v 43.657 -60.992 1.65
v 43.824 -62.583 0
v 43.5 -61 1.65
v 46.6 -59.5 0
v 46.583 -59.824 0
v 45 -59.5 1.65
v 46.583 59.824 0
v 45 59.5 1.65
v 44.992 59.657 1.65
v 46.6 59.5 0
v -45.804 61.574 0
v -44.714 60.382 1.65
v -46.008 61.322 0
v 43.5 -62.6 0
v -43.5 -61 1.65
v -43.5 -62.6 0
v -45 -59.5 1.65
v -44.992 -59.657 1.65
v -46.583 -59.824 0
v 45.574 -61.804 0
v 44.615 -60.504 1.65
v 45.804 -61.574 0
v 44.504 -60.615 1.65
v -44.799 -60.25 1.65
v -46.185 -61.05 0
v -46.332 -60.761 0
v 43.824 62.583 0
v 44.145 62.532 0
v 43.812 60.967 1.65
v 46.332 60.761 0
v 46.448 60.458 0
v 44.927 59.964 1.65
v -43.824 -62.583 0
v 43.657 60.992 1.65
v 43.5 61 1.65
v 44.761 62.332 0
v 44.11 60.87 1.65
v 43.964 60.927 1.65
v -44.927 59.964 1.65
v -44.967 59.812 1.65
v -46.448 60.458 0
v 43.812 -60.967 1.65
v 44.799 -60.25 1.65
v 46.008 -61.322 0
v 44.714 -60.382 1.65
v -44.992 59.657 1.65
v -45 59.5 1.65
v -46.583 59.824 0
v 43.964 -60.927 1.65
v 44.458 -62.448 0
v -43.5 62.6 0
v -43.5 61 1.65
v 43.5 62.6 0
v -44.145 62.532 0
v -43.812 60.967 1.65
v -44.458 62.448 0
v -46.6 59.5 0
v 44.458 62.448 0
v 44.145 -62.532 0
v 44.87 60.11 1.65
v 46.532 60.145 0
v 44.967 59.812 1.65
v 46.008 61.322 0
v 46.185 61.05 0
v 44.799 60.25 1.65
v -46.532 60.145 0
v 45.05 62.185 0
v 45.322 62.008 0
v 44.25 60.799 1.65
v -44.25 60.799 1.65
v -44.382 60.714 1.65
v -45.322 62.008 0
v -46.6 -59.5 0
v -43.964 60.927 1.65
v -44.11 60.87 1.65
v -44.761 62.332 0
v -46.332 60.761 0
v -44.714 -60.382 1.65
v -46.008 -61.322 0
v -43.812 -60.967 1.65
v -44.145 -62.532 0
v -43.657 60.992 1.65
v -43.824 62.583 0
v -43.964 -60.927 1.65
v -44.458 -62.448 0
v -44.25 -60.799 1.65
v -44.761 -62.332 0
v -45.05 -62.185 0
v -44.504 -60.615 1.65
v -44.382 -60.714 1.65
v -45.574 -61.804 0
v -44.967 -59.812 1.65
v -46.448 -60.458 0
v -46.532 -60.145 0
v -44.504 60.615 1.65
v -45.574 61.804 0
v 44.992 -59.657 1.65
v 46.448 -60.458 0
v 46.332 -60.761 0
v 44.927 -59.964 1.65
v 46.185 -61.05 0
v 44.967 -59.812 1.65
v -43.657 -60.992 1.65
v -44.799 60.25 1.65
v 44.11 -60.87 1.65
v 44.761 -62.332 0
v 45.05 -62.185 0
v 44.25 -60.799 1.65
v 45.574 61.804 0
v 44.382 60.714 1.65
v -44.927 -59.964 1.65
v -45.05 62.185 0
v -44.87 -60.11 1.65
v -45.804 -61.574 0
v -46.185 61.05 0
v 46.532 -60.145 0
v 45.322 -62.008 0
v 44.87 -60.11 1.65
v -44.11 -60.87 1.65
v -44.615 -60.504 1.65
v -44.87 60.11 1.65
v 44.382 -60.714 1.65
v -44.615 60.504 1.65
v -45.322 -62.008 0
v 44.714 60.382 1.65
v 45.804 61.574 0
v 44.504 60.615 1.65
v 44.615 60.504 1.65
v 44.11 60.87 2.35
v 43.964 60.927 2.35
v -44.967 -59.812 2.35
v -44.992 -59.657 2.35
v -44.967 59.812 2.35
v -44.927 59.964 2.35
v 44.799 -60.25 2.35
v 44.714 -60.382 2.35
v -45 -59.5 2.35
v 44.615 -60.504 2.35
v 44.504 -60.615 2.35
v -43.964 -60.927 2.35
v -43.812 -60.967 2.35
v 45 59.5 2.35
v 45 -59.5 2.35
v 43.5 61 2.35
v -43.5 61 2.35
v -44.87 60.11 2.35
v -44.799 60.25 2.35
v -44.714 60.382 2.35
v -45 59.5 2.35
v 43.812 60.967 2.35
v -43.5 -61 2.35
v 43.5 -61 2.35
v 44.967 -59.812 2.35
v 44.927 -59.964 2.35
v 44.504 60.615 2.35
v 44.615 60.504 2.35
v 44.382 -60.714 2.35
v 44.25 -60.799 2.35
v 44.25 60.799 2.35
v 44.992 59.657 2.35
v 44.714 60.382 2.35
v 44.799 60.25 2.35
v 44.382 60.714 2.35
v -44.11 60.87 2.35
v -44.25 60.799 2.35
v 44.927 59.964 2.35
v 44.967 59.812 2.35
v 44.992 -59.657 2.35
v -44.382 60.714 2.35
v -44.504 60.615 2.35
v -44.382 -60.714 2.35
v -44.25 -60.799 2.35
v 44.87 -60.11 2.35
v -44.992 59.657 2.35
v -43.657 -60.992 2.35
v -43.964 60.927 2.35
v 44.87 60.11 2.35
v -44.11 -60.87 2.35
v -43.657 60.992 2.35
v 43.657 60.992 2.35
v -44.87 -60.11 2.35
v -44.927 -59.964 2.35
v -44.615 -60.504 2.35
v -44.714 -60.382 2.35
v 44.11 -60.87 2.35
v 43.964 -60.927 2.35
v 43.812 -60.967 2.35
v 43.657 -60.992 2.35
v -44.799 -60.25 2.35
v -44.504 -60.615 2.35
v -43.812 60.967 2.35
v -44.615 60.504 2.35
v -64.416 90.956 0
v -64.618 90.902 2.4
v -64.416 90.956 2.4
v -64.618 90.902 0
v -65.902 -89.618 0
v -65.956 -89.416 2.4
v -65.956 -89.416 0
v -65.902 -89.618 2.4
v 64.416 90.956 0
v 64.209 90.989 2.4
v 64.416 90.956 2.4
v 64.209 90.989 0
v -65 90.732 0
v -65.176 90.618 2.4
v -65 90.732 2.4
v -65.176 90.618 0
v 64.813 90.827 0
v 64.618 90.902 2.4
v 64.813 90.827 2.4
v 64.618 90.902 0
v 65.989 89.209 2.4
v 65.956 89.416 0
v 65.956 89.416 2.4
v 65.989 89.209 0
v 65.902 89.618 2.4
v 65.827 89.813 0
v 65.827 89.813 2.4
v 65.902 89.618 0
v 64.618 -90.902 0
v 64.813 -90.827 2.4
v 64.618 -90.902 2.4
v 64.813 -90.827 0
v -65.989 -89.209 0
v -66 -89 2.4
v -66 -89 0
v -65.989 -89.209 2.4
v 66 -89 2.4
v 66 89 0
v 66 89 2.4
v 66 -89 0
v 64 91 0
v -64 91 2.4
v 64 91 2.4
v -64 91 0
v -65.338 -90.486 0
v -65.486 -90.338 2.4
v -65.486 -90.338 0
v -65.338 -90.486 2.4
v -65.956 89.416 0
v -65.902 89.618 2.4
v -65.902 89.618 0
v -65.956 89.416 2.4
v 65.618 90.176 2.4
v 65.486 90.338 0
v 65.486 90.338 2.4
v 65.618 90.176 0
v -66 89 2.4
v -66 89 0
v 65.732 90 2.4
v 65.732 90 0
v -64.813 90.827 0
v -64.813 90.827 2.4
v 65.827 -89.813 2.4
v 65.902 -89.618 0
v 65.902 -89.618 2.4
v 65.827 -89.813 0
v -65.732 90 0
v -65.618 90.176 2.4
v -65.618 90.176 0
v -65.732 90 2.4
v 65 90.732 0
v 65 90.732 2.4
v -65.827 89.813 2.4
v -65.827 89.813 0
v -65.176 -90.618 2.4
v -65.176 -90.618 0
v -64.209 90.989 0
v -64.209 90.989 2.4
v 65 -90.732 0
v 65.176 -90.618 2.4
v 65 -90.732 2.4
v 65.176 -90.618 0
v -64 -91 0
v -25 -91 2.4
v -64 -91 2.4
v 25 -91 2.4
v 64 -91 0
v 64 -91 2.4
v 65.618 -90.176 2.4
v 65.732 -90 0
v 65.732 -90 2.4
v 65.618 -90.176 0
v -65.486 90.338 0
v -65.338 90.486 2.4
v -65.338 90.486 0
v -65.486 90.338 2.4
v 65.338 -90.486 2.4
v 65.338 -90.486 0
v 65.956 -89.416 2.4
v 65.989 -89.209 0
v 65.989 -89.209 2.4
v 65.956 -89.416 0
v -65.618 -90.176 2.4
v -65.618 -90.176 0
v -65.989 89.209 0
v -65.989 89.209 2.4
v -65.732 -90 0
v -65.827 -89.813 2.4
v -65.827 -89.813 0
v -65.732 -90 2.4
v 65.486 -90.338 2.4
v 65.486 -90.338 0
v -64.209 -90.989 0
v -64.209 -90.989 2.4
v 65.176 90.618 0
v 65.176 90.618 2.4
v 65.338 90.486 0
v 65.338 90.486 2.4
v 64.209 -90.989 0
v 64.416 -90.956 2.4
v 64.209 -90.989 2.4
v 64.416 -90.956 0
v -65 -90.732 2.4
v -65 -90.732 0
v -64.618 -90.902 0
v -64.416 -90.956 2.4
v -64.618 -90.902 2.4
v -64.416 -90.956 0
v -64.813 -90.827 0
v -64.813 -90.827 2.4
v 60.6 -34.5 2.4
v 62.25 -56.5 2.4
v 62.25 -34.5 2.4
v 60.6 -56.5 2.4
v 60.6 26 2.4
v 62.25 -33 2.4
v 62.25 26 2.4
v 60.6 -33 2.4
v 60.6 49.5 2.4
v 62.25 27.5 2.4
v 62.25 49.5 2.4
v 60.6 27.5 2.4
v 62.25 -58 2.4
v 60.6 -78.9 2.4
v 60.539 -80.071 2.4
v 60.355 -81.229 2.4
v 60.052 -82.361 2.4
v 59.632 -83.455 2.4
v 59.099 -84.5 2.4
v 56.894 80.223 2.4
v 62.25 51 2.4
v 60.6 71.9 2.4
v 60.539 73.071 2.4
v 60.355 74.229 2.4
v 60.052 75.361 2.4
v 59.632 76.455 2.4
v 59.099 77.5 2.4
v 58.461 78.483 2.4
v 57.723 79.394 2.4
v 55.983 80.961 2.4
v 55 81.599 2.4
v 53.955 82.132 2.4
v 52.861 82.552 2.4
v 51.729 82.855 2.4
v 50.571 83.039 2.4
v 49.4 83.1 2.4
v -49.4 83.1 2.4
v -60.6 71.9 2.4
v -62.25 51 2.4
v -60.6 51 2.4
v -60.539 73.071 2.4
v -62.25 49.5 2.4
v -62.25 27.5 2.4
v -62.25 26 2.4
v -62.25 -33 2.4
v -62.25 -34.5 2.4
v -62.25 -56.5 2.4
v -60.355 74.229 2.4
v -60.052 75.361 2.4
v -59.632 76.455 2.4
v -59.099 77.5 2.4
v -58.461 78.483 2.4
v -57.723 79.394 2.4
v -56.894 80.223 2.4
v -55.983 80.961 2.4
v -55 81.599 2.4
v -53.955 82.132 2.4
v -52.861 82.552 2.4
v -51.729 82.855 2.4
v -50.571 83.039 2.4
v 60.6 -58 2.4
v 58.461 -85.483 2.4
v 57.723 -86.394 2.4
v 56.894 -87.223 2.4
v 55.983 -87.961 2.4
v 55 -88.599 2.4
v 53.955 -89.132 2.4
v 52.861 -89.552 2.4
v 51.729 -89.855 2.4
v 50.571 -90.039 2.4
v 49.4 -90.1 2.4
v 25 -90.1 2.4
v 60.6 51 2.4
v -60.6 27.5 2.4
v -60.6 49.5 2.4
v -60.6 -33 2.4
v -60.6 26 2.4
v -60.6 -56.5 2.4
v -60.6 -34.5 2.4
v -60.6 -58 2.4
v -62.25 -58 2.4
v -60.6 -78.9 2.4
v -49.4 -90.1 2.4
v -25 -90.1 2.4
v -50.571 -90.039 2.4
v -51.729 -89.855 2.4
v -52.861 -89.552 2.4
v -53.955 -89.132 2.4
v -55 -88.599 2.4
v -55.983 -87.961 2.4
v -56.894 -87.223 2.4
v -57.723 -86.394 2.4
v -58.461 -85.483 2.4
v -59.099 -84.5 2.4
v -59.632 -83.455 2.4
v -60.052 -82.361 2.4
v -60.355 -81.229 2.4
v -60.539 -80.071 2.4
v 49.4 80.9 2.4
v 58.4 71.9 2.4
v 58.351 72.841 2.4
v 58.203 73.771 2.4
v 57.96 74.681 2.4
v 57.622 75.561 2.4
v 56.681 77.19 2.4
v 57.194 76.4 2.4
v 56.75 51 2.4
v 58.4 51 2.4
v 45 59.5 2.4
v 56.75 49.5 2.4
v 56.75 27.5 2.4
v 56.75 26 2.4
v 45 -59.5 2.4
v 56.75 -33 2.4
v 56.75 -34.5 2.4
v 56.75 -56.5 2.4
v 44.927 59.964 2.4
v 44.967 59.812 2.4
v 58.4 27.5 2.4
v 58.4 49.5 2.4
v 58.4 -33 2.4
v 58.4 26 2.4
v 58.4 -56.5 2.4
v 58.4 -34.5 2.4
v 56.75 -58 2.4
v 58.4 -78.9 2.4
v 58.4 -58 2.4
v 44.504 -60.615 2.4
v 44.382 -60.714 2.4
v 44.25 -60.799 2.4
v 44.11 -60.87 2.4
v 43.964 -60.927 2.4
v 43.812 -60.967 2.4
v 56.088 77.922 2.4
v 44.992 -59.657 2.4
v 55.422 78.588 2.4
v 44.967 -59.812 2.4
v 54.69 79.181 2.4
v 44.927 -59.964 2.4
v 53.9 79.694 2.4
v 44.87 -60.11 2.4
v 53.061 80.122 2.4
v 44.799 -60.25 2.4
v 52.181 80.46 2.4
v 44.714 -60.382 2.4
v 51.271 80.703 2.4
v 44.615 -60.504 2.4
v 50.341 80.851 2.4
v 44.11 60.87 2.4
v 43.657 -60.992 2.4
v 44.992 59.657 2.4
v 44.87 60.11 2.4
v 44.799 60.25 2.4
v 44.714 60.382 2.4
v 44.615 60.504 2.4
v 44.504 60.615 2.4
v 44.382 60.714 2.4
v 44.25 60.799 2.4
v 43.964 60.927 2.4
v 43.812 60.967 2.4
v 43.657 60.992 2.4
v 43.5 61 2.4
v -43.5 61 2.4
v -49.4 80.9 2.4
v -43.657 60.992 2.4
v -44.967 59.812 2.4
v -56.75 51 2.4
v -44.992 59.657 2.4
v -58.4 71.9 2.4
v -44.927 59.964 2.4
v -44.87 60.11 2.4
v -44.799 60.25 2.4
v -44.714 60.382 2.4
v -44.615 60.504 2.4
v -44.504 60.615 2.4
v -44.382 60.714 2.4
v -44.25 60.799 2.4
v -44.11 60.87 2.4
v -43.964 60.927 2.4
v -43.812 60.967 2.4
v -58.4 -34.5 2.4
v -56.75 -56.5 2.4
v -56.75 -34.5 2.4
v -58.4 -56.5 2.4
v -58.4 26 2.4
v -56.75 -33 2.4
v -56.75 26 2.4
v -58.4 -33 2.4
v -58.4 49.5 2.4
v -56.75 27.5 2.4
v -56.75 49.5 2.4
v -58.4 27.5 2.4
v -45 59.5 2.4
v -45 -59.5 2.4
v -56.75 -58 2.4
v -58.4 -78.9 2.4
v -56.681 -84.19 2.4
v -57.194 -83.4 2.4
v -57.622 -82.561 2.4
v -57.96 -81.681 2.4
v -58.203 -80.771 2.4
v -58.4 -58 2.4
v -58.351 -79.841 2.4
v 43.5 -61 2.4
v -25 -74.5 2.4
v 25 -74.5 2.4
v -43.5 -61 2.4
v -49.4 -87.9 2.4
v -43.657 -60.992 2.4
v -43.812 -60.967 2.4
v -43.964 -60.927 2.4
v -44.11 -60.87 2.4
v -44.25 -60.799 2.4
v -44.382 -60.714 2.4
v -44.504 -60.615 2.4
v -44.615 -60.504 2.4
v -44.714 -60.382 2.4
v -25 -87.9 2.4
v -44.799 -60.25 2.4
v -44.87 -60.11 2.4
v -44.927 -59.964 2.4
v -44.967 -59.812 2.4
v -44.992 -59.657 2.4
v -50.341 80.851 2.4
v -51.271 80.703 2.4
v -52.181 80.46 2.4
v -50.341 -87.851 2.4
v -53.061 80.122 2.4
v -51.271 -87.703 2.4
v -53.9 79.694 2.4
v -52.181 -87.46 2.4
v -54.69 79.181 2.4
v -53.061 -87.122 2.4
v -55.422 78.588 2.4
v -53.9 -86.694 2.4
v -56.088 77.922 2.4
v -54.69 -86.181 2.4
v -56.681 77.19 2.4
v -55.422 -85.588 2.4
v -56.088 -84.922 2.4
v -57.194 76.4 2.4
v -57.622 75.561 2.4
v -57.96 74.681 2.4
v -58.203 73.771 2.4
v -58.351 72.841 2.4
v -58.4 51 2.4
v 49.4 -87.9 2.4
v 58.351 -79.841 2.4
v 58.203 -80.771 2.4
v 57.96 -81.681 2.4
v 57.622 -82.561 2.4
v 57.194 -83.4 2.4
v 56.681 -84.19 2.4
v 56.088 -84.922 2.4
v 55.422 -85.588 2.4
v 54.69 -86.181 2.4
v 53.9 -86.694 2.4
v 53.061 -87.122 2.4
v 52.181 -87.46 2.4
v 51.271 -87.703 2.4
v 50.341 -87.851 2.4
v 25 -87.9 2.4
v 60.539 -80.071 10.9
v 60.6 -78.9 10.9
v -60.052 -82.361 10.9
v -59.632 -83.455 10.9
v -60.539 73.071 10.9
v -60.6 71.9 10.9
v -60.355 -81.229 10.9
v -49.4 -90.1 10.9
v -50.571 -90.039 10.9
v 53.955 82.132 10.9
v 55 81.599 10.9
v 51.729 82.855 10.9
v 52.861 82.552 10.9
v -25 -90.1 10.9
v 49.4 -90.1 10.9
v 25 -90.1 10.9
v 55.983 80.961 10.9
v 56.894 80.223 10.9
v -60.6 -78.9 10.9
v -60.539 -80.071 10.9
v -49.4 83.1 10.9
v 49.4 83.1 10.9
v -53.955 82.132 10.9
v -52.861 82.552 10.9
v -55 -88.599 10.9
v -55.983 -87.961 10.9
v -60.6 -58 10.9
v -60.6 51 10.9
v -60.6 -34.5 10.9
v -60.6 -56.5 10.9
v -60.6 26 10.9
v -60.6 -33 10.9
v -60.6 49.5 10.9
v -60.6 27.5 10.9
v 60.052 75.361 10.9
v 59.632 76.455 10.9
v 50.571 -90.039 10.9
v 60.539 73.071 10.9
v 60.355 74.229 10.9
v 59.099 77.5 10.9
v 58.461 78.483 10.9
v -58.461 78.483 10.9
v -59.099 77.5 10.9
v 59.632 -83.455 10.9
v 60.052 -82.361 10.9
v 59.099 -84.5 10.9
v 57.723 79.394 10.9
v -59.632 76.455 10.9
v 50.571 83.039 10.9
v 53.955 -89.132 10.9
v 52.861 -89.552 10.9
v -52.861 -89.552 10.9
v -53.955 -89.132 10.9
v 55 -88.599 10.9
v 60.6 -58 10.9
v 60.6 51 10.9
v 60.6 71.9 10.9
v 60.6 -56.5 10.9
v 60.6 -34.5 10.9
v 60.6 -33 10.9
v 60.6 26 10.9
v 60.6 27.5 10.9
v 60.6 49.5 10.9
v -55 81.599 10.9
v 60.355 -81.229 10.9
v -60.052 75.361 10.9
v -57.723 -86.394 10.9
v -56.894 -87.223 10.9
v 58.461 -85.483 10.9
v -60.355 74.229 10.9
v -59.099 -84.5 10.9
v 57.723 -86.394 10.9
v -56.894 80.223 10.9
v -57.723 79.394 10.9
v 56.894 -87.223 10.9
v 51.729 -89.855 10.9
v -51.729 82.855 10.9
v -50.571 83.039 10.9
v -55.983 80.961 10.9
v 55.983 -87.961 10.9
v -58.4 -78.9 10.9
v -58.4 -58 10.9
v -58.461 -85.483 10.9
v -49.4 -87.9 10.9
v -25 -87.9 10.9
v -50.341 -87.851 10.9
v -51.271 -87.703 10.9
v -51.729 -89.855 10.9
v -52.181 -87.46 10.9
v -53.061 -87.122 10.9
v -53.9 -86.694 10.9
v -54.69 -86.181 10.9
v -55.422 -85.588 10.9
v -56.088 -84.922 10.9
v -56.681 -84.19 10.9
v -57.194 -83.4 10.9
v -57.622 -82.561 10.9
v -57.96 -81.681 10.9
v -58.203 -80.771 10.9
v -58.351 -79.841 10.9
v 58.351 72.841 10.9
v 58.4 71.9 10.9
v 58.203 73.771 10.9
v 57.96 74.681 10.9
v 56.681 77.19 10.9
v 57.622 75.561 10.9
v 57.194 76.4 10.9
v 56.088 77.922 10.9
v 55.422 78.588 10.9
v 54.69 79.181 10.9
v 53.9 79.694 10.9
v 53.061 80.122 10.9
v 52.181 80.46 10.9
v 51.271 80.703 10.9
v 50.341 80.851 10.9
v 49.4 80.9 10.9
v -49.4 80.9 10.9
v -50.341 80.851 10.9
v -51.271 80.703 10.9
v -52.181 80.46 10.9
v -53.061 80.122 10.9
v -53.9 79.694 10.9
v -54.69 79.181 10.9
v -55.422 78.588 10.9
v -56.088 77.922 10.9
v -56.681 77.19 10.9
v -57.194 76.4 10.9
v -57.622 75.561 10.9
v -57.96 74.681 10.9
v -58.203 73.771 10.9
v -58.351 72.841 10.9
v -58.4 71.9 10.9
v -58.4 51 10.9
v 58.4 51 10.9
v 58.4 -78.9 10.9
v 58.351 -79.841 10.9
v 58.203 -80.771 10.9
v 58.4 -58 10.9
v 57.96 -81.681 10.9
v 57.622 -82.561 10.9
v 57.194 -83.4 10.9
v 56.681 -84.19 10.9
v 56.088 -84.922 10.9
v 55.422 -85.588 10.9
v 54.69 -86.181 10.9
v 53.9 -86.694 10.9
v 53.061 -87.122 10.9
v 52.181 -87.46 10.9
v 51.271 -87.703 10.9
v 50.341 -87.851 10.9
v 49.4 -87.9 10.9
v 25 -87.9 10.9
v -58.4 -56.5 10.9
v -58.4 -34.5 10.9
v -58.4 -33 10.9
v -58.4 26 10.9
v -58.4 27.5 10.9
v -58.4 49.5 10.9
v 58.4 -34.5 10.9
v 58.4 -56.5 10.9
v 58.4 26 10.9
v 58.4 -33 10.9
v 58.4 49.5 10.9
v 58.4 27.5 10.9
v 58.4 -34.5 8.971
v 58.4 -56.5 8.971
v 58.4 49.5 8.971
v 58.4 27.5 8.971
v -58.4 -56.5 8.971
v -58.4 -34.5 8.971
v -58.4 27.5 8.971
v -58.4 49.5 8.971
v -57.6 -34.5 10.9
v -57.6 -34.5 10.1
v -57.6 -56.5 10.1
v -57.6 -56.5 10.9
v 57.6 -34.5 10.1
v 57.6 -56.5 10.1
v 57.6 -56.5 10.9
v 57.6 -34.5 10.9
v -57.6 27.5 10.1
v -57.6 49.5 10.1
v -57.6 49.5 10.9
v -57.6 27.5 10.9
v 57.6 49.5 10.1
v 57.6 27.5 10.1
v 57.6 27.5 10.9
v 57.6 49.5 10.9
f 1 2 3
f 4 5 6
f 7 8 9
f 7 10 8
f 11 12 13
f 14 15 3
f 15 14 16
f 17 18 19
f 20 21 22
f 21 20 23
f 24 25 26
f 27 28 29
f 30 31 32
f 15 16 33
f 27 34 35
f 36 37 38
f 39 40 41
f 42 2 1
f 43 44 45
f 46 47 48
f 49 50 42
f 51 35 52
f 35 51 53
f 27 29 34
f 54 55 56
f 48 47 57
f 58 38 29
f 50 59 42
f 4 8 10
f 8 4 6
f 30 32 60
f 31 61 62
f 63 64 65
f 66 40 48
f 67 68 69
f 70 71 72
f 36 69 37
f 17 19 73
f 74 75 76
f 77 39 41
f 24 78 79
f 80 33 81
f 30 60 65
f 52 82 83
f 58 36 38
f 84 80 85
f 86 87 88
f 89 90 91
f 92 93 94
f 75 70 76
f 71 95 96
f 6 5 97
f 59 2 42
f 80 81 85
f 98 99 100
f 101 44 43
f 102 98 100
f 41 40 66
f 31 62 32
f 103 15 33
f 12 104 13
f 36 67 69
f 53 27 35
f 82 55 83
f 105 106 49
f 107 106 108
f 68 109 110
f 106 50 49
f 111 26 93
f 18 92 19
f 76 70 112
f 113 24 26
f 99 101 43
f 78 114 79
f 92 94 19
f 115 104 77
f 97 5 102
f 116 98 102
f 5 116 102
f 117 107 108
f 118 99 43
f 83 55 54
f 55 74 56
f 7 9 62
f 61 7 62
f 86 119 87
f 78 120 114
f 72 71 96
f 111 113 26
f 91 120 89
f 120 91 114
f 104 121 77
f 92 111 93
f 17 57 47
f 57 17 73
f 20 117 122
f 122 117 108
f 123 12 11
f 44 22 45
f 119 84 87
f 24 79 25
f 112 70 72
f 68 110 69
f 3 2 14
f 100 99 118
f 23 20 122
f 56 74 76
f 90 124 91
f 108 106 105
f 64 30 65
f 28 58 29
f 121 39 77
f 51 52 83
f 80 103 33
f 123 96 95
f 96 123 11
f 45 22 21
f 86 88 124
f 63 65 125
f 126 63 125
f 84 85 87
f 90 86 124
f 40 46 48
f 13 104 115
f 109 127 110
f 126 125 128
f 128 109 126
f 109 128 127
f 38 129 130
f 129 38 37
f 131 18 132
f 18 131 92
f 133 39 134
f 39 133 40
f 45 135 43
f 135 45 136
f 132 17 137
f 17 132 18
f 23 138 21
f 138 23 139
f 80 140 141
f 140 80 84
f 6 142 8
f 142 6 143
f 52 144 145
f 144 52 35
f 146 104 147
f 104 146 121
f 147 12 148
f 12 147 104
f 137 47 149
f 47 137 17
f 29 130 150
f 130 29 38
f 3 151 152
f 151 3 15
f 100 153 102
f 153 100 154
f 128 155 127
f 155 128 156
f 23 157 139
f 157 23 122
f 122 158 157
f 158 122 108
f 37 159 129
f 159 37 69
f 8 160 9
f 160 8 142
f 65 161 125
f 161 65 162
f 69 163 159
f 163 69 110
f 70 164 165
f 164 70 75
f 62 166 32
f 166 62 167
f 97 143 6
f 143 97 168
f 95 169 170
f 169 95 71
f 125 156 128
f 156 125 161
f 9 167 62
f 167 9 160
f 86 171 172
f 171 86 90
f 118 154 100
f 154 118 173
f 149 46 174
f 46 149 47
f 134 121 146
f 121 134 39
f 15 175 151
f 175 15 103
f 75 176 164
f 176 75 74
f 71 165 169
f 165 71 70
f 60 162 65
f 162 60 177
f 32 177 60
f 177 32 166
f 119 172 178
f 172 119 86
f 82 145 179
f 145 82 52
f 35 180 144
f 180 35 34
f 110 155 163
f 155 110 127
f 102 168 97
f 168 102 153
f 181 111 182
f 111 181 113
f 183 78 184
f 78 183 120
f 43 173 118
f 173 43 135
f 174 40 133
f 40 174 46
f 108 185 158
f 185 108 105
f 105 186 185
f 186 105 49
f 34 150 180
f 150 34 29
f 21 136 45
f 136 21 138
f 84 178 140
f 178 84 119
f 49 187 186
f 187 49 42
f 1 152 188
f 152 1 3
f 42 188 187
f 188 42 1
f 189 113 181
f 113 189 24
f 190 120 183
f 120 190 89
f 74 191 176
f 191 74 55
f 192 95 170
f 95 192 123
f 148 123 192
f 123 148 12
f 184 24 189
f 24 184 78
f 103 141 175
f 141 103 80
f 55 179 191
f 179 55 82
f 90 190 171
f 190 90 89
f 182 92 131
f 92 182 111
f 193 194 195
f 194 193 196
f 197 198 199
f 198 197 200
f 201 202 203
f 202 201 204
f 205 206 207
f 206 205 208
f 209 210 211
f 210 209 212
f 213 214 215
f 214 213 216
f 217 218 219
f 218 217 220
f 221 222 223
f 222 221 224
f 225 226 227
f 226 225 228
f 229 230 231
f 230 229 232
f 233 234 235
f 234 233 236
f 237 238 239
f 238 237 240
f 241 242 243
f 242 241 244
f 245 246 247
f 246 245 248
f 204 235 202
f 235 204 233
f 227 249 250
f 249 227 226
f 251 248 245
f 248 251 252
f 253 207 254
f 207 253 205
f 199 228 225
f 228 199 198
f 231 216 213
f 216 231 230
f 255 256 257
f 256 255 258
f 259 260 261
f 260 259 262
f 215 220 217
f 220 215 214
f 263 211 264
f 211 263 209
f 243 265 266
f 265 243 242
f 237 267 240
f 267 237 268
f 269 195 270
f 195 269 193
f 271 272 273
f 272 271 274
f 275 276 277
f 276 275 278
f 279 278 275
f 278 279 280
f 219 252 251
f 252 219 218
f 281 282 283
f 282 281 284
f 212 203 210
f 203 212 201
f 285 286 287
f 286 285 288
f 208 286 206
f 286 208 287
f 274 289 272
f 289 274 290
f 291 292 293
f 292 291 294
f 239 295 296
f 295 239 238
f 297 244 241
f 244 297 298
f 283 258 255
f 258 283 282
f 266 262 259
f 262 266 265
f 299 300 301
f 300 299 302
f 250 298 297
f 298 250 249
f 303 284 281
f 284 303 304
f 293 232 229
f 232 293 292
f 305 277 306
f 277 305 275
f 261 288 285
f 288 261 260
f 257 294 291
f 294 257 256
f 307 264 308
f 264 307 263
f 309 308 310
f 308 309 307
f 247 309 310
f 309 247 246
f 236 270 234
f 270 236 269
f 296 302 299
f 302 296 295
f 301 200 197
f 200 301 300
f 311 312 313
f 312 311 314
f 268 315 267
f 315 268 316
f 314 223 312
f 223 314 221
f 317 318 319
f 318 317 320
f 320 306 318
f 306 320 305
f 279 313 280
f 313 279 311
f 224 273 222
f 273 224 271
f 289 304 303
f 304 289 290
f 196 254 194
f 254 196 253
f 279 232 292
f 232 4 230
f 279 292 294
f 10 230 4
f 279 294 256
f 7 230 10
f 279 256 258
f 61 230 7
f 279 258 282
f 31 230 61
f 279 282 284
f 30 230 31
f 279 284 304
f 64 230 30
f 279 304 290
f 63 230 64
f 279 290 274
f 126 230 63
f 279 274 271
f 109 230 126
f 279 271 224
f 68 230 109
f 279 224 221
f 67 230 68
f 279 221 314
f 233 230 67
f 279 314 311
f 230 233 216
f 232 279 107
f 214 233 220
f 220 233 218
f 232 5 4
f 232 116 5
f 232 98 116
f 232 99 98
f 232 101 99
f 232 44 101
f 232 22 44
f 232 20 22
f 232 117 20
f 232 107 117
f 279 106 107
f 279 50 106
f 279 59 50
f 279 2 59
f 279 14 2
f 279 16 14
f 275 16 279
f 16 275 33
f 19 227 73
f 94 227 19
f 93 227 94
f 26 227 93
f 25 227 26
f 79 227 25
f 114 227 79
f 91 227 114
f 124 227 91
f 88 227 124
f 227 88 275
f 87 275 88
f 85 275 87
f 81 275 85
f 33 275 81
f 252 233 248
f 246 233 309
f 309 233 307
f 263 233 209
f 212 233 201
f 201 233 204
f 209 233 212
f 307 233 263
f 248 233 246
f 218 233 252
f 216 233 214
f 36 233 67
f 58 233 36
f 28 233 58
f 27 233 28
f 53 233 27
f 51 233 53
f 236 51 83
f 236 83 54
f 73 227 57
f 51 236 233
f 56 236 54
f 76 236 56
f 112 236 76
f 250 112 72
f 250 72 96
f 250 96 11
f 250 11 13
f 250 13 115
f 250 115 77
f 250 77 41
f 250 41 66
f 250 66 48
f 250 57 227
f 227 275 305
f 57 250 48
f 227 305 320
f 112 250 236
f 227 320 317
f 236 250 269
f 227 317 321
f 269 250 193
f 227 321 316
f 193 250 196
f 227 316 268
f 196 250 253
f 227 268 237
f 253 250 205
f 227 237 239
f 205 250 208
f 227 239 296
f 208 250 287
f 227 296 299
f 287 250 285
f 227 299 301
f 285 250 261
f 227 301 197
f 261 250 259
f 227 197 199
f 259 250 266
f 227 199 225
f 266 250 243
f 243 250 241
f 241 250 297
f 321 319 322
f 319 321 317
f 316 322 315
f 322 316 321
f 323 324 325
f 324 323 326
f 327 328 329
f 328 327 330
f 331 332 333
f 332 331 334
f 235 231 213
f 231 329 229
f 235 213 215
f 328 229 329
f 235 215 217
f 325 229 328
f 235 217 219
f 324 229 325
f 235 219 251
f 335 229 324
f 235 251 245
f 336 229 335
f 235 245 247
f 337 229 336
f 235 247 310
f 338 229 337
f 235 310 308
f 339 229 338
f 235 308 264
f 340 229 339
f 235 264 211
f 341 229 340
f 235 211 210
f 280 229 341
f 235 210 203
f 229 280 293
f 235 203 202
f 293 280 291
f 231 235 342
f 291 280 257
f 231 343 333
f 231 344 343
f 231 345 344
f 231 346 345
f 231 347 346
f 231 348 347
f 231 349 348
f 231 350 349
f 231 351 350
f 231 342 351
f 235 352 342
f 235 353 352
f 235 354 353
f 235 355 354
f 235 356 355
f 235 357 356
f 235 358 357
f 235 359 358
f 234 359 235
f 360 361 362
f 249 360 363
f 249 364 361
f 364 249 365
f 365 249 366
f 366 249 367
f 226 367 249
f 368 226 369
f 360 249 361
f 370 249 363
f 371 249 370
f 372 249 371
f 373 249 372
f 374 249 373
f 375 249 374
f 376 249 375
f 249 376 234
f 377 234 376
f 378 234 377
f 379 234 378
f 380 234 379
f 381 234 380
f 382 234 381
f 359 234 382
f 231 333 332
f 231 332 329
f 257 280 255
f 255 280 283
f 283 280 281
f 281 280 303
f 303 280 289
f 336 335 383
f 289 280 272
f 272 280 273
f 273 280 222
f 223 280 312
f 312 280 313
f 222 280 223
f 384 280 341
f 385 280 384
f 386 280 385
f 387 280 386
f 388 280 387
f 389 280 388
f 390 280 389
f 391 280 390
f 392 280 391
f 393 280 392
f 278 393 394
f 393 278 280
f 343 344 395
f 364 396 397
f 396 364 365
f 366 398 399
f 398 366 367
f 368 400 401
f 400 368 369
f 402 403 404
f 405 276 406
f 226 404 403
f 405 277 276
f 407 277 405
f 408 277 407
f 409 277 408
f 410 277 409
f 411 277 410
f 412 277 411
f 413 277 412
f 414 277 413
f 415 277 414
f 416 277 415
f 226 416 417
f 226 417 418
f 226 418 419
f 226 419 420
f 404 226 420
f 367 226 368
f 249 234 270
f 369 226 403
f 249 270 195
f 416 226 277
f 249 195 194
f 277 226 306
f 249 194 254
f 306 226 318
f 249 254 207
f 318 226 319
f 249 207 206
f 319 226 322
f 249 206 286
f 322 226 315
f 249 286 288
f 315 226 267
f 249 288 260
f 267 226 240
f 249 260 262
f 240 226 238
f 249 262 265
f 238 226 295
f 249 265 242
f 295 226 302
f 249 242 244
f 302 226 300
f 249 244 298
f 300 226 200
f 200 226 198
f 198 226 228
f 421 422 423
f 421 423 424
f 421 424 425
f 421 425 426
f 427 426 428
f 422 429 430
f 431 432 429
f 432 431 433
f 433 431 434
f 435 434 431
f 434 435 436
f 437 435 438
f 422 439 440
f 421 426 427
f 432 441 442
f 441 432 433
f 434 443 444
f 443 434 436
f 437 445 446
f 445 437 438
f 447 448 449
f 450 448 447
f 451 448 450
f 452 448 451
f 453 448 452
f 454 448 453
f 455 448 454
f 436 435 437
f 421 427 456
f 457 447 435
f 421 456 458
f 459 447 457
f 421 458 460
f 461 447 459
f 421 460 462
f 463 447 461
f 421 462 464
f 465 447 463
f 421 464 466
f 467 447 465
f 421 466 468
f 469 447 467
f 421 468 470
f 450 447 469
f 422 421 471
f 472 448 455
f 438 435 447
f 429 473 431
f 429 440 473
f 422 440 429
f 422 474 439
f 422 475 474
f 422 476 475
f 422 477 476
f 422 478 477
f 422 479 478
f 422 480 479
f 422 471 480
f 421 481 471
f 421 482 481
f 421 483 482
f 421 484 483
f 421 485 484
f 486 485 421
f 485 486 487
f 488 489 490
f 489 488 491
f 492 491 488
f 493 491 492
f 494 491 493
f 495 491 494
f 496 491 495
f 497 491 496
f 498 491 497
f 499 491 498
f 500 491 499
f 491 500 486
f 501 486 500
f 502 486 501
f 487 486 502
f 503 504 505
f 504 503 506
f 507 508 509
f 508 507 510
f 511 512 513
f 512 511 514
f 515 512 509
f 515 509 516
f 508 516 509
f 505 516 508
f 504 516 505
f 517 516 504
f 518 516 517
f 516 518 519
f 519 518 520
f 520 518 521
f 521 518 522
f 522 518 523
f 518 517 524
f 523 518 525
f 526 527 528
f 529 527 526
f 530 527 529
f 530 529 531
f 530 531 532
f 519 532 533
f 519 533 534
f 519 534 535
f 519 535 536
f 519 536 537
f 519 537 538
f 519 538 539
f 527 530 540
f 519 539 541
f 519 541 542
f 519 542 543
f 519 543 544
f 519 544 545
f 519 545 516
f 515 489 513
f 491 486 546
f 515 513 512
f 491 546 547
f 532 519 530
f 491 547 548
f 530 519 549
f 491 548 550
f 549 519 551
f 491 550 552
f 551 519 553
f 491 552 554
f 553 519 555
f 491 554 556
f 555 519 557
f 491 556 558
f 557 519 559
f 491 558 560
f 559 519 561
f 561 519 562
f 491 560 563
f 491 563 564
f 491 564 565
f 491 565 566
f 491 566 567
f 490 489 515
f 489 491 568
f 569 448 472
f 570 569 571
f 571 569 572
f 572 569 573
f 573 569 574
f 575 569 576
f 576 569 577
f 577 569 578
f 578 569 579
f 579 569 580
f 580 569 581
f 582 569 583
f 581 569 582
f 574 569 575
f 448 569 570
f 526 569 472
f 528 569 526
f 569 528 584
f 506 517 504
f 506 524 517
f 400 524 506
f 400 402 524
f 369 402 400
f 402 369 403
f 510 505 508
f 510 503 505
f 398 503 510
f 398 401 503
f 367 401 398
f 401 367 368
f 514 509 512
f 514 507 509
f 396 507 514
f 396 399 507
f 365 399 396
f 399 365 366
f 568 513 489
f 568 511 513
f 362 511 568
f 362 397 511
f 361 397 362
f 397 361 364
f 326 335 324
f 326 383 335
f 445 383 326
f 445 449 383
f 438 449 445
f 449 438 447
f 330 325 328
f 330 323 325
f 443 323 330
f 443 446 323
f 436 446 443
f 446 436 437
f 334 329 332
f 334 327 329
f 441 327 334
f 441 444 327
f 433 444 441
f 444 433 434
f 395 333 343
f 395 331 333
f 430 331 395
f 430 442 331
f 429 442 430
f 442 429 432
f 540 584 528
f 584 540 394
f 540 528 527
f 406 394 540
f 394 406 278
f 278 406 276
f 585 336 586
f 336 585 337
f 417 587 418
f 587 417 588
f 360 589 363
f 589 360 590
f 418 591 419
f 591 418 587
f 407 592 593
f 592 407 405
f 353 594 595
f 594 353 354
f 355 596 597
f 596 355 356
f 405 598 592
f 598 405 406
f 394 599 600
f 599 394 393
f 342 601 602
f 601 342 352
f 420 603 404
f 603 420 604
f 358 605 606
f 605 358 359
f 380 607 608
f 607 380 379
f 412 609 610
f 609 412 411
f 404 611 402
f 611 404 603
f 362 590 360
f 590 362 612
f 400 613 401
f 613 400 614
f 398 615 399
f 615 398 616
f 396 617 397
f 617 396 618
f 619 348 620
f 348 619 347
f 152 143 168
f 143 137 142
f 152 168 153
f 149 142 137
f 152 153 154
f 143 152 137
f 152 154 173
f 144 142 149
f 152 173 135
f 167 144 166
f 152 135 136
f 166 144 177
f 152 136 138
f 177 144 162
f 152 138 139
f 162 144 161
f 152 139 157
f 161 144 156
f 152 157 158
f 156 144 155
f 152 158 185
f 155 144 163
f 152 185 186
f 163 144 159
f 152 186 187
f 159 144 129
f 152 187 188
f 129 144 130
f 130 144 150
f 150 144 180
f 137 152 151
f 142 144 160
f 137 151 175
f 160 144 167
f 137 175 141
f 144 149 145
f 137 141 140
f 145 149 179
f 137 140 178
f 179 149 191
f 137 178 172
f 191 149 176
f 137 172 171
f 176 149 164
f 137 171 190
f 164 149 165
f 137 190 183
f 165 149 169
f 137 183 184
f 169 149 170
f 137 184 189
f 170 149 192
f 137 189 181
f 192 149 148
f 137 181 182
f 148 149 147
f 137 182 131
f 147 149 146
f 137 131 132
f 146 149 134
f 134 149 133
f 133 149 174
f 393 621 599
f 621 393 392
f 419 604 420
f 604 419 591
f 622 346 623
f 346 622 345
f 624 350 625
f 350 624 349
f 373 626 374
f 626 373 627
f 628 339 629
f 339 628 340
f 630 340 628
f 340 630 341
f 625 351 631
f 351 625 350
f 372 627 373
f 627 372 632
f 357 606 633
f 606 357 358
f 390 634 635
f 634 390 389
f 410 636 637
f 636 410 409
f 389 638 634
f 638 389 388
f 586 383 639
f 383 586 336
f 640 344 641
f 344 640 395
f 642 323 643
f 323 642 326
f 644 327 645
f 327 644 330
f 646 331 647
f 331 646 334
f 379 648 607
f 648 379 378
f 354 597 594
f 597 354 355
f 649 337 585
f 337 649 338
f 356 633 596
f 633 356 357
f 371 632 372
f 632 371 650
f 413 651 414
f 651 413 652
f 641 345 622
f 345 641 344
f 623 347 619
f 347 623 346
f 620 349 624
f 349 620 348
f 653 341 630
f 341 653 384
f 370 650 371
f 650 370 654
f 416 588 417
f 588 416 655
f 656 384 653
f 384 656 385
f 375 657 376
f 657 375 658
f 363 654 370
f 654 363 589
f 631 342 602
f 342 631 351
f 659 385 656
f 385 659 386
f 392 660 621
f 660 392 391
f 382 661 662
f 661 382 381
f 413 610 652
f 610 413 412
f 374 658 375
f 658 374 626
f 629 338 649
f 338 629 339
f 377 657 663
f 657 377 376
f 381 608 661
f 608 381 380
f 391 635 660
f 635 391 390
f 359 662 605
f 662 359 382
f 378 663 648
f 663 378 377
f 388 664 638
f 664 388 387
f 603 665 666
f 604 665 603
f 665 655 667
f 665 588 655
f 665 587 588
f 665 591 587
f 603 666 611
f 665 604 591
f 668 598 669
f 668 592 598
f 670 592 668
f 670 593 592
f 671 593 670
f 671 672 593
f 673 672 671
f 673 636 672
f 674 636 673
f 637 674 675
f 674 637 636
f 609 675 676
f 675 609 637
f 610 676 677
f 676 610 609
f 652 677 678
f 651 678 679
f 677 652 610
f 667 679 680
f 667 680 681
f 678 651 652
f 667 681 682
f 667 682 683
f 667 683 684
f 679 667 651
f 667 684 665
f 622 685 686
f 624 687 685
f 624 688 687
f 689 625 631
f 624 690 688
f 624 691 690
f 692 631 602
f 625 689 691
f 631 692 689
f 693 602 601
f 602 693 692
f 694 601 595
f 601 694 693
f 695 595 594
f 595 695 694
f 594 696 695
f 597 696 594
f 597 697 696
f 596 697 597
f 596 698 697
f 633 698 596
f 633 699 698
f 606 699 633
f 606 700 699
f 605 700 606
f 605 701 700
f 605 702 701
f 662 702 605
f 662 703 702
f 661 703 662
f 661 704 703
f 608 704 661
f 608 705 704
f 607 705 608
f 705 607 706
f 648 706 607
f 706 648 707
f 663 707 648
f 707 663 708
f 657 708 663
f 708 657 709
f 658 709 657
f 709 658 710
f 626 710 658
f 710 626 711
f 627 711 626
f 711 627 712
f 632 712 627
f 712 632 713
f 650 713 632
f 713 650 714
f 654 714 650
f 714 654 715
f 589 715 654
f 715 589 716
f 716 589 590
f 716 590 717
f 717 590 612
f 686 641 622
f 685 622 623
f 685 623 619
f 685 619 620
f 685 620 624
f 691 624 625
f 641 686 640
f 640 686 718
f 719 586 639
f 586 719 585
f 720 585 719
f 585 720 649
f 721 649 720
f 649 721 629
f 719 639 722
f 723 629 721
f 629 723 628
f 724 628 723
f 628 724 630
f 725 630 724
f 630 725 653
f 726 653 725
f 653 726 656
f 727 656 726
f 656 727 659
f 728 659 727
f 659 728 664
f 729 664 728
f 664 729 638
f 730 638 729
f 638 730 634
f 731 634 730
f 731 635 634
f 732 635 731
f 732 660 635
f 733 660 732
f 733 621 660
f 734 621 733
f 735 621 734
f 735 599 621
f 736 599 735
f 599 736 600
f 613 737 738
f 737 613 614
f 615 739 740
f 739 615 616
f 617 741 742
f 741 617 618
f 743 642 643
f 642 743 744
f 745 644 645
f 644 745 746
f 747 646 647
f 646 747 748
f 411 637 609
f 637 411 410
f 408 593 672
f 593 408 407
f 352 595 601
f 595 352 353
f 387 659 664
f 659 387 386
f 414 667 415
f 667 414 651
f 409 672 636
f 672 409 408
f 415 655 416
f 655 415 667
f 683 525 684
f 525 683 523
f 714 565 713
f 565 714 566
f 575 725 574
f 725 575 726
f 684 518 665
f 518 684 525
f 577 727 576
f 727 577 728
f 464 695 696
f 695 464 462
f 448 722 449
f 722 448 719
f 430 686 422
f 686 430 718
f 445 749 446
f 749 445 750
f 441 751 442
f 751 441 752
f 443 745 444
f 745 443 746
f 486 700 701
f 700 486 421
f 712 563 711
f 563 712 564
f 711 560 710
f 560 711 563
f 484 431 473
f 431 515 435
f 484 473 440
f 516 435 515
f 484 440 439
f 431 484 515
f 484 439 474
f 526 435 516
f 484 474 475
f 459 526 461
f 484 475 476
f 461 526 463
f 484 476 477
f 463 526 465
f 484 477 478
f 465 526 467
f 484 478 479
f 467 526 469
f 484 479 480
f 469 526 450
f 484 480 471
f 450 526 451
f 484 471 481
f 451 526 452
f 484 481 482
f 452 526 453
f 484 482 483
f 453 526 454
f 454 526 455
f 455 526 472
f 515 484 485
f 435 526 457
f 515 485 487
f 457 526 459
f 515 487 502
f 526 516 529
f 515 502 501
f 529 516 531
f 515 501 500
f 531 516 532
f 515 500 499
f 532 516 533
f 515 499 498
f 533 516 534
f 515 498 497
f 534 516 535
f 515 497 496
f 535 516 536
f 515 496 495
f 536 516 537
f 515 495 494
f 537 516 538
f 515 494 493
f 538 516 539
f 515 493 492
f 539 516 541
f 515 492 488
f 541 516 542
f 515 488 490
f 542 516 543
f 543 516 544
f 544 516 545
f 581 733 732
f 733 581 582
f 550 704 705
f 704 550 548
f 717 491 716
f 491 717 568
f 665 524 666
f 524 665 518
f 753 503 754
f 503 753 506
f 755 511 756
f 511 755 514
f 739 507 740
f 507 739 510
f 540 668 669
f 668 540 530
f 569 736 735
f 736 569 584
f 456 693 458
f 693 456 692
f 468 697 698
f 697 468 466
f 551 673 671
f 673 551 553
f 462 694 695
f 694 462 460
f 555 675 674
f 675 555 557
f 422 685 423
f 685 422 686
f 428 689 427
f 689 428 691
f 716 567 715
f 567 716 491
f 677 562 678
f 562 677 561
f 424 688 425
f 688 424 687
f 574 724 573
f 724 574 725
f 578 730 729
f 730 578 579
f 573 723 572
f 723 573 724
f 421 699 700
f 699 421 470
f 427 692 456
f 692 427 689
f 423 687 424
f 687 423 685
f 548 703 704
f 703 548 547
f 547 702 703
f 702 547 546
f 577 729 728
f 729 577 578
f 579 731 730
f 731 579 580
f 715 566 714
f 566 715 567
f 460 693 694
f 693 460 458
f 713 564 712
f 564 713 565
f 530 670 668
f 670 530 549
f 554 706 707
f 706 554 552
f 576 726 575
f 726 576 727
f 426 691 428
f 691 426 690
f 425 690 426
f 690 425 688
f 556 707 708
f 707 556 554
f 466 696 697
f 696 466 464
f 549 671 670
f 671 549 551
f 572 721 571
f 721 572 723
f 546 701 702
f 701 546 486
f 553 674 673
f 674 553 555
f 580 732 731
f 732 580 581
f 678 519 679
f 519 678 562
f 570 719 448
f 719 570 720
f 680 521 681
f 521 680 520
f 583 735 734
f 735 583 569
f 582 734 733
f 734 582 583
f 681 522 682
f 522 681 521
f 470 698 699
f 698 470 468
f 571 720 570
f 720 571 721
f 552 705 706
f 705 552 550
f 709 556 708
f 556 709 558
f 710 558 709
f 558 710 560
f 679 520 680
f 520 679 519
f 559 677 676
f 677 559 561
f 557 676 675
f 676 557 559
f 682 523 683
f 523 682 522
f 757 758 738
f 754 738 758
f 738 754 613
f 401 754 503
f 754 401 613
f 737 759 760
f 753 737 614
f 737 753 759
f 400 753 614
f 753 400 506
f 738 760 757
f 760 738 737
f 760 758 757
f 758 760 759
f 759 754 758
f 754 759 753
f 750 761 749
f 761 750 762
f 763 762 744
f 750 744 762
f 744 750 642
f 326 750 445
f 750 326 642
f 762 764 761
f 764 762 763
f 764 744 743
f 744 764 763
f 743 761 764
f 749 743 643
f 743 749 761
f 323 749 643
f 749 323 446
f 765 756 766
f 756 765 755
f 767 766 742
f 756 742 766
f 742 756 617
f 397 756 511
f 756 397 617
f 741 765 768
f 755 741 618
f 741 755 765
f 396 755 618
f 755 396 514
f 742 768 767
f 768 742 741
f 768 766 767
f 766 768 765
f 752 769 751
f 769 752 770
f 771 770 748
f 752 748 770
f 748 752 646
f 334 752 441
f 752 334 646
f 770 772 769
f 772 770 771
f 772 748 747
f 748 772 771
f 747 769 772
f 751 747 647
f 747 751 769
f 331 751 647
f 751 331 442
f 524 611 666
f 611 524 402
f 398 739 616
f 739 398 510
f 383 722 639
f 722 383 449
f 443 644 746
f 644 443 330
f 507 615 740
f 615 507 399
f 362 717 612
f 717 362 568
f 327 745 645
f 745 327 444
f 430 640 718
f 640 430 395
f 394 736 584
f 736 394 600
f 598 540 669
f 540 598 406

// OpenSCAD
// ====================================================================
// PICTURE FRAME INSERT FOR KINDLE PAPERWHITE
// ====================================================================
// Custom 3D printed mat board and snap-in cradle for Kindle Paperwhite.
// Creates a clean, professional white bezel around the e-ink screen,
// perfectly centered in a standard picture frame, with integrated
// snap-in retention clips and 90-degree USB routing.
//
// Recommended 3D print orientation:
//   Print flat with front face down on build plate (Z=0).
//   100% support-free print!
// ====================================================================

$fn = 60; // Curve resolution
eps = 0.05; // CSG overlap epsilon for manifold union

// ====================================================================
// 1. PICTURE FRAME PARAMETERS (mm)
// ====================================================================
// Dimensions of the inner opening / rabbet of the wooden frame
frame_inner_w        = 133.0; // Width of frame opening (13.3 cm)
frame_inner_h        = 183.0; // Height of frame opening (18.3 cm)
frame_clearance      = 0.5;   // Fit tolerance around outer edge of mat (0.5 mm)
mat_thickness        = 2.4;   // Front mat faceplate thickness (mm)
mat_corner_radius    = 2.0;   // Outer corner radius to fit frame smoothly (mm)

// ====================================================================
// 2. KINDLE PAPERWHITE PARAMETERS (mm)
// ====================================================================
kindle_w             = 116.0; // Kindle body width (11.6 cm)
kindle_h             = 168.0; // Kindle body height (16.8 cm)
kindle_t             = 8.5;   // Kindle body thickness (mm)
kindle_corner_r      = 9.0;   // Kindle corner radius (mm)
kindle_tolerance     = 0.4;   // Pocket clearance for easy snap fit (mm)

// Kindle bezel widths (used for perfect display centering)
kindle_bezel_top     = 20.0;  // Plastic bezel at top of Kindle (mm)
kindle_bezel_bottom  = 27.0;  // Plastic bezel at bottom of Kindle with USB (mm)

// ====================================================================
// 3. DISPLAY / SCREEN WINDOW PARAMETERS (mm)
// ====================================================================
screen_w             = 90.0;  // Visible display window width (mm)
screen_h             = 122.0; // Visible display window height (mm)
screen_corner_r      = 1.5;   // Slight corner rounding on display window (mm)
screen_chamfer       = 1.6;   // 45-degree inward bevel on front face (mm)

// ====================================================================
// 4. ORIENTATION & CABLE ROUTING PARAMETERS (mm)
// ====================================================================
// Set to true if USB port is at bottom (-Y), or false if at top (+Y)
usb_at_bottom        = true;

usb_cutout_w         = 50.0;  // Width for 90-degree USB plug & power button (mm)
frame_hack_depth     = 9.0;   // Depth of user cutout in wooden frame (mm)

// ====================================================================
// 5. SNAP-IN CRADLE PARAMETERS (mm)
// ====================================================================
wall_thickness       = 2.2;   // Cradle wall thickness (mm)
snap_lip_overhang    = 0.8;   // Retention lip overhang (mm)
snap_tab_length      = 22.0;  // Length of each flexible snap tab (mm)
snap_slot_w          = 1.5;   // Width of relief slots flanking each tab (mm)
snap_y_offset        = 42.0;  // Distance of snap tabs from Kindle center (mm)

// Optional frame mounting holes in corners (default false for pristine mat face)
add_frame_mounting_holes = false;
mount_hole_dia       = 3.0;   // Screw hole diameter (mm)

// Preview helper toggle
show_ghost_kindle    = false; // Set true in OpenSCAD GUI to see Kindle placement ghost

// ====================================================================
// COMPUTED OFFSETS & DIMENSIONS
// ====================================================================
mat_w = frame_inner_w - 2 * frame_clearance;
mat_h = frame_inner_h - 2 * frame_clearance;

pocket_w = kindle_w + 2 * kindle_tolerance;
pocket_h = kindle_h + 2 * kindle_tolerance;
cradle_wall_w = pocket_w + 2 * wall_thickness;
cradle_wall_h = pocket_h + 2 * wall_thickness;

// Vertical offset of Kindle body to center the active screen at (0, 0)
kindle_y_offset = usb_at_bottom ?
    -((kindle_bezel_bottom - kindle_bezel_top) / 2) :
    +((kindle_bezel_bottom - kindle_bezel_top) / 2);

// ====================================================================
// 2D HELPER SHAPES
// ====================================================================
module rounded_rect_2d(w, h, r) {
    r_eff = min(r, min(w/2, h/2));
    hull() {
        translate([ w/2 - r_eff,  h/2 - r_eff]) circle(r = r_eff);
        translate([-w/2 + r_eff,  h/2 - r_eff]) circle(r = r_eff);
        translate([-w/2 + r_eff, -h/2 + r_eff]) circle(r = r_eff);
        translate([ w/2 - r_eff, -h/2 + r_eff]) circle(r = r_eff);
    }
}

// ====================================================================
// 3D MODULES
// ====================================================================

// Screen cutout with 45-degree chamfer facing the front (Z=0)
module screen_cutout() {
    // 45-degree beveled entry on the front face (Z=0 to Z=screen_chamfer)
    hull() {
        translate([0, 0, -eps])
            linear_extrude(height = eps)
                rounded_rect_2d(screen_w + 2*screen_chamfer, screen_h + 2*screen_chamfer, screen_corner_r + screen_chamfer);
        translate([0, 0, screen_chamfer])
            linear_extrude(height = eps)
                rounded_rect_2d(screen_w, screen_h, screen_corner_r);
    }
    // Straight cutout through the rest of the mat thickness
    translate([0, 0, screen_chamfer - eps])
        linear_extrude(height = mat_thickness - screen_chamfer + 2*eps)
            rounded_rect_2d(screen_w, screen_h, screen_corner_r);
}

// Front mat faceplate
module front_mat() {
    difference() {
        linear_extrude(height = mat_thickness)
            rounded_rect_2d(mat_w, mat_h, mat_corner_radius);
        screen_cutout();
    }
}

// Cradle walls surrounding the Kindle (overlaps mat slightly for manifold solid)
module cradle_walls() {
    translate([0, kindle_y_offset, mat_thickness - eps]) {
        difference() {
            // Outer wall shape
            linear_extrude(height = kindle_t + eps)
                rounded_rect_2d(cradle_wall_w, cradle_wall_h, kindle_corner_r + wall_thickness);
            // Pocket void
            translate([0, 0, eps])
                linear_extrude(height = kindle_t + 1.0)
                    rounded_rect_2d(pocket_w, pocket_h, kindle_corner_r);
        }
    }
}

// Snap tab retention lip on inner wall
module snap_lip(is_left) {
    x_base = is_left ? -(pocket_w / 2 + eps) : (pocket_w / 2 + eps);
    x_tip  = is_left ? -(pocket_w / 2 - snap_lip_overhang) : (pocket_w / 2 - snap_lip_overhang);
    z_top  = mat_thickness + kindle_t;
    z_mid  = z_top - 0.8;
    z_bot  = z_top - 2.0;

    // Prismatic snap lip profile extruded along Y
    rotate([90, 0, 0])
        linear_extrude(height = snap_tab_length, center = true)
            polygon(points = [
                [x_base, z_bot],
                [x_tip,  z_mid],
                [x_tip,  z_top],
                [x_base, z_top]
            ]);
}

// Relief slot pair flanking each snap tab (cuts ONLY through the wall, NOT the mat!)
module snap_relief_slots(is_left, y_pos) {
    x_pos = is_left ? -(pocket_w / 2 + wall_thickness / 2) : (pocket_w / 2 + wall_thickness / 2);
    for (dy = [-snap_tab_length/2 - snap_slot_w/2, snap_tab_length/2 + snap_slot_w/2]) {
        translate([x_pos, kindle_y_offset + y_pos + dy, mat_thickness + (kindle_t + 1.0)/2])
            cube([wall_thickness * 2.5, snap_slot_w, kindle_t + 1.0], center = true);
    }
}

// USB connector & cable relief cutout at bottom (does NOT cut front mat face)
module usb_cable_cutout() {
    y_cutout = usb_at_bottom ?
        (kindle_y_offset - pocket_h/2) :
        (kindle_y_offset + pocket_h/2);
    
    translate([0, y_cutout, mat_thickness + (kindle_t + 1.0)/2])
        cube([usb_cutout_w, wall_thickness * 4 + frame_hack_depth * 2, kindle_t + 1.0], center = true);
}

// Optional frame mounting screw holes in the mat corners
module frame_mounting_holes() {
    if (add_frame_mounting_holes) {
        corner_x = mat_w / 2 - 5.0;
        corner_y = mat_h / 2 - 5.0;
        for (sx = [-1, 1], sy = [-1, 1]) {
            translate([sx * corner_x, sy * corner_y, -eps])
                cylinder(d = mount_hole_dia, h = mat_thickness + 2*eps);
        }
    }
}

// ====================================================================
// COMPLETE ASSEMBLED HOLDER
// ====================================================================
module kindle_frame_mount() {
    difference() {
        union() {
            // Front white mat faceplate
            front_mat();

            // Cradle perimeter walls
            cradle_walls();

            // Snap-in retention tabs on left and right walls
            for (y_tab = [-snap_y_offset, snap_y_offset]) {
                translate([0, kindle_y_offset + y_tab, 0]) {
                    snap_lip(is_left = true);
                    snap_lip(is_left = false);
                }
            }
        }

        // Cut relief slots for each snap tab (stops at mat surface Z=mat_thickness)
        for (y_tab = [-snap_y_offset, snap_y_offset]) {
            snap_relief_slots(is_left = true,  y_pos = y_tab);
            snap_relief_slots(is_left = false, y_pos = y_tab);
        }

        // Cutout for 90-degree USB plug and power button (stops at mat surface)
        usb_cable_cutout();

        // Optional corner screw holes to attach to frame
        frame_mounting_holes();
    }
}

// ====================================================================
// RENDER
// ====================================================================
kindle_frame_mount();

// ====================================================================
// PREVIEW HELPER: Ghost view of Kindle Paperwhite (F5 preview only)
// ====================================================================
if (show_ghost_kindle) {
    %translate([0, kindle_y_offset, mat_thickness + kindle_t/2]) {
        color([0.2, 0.2, 0.2, 0.4])
            linear_extrude(height = kindle_t, center = true)
                rounded_rect_2d(kindle_w, kindle_h, kindle_corner_r);
        // Display screen ghost
        color([0.9, 0.9, 0.9, 0.6])
            translate([0, -kindle_y_offset, -kindle_t/2 + 0.1])
                linear_extrude(height = 0.2)
                    rounded_rect_2d(screen_w, screen_h, screen_corner_r);
    }
}
